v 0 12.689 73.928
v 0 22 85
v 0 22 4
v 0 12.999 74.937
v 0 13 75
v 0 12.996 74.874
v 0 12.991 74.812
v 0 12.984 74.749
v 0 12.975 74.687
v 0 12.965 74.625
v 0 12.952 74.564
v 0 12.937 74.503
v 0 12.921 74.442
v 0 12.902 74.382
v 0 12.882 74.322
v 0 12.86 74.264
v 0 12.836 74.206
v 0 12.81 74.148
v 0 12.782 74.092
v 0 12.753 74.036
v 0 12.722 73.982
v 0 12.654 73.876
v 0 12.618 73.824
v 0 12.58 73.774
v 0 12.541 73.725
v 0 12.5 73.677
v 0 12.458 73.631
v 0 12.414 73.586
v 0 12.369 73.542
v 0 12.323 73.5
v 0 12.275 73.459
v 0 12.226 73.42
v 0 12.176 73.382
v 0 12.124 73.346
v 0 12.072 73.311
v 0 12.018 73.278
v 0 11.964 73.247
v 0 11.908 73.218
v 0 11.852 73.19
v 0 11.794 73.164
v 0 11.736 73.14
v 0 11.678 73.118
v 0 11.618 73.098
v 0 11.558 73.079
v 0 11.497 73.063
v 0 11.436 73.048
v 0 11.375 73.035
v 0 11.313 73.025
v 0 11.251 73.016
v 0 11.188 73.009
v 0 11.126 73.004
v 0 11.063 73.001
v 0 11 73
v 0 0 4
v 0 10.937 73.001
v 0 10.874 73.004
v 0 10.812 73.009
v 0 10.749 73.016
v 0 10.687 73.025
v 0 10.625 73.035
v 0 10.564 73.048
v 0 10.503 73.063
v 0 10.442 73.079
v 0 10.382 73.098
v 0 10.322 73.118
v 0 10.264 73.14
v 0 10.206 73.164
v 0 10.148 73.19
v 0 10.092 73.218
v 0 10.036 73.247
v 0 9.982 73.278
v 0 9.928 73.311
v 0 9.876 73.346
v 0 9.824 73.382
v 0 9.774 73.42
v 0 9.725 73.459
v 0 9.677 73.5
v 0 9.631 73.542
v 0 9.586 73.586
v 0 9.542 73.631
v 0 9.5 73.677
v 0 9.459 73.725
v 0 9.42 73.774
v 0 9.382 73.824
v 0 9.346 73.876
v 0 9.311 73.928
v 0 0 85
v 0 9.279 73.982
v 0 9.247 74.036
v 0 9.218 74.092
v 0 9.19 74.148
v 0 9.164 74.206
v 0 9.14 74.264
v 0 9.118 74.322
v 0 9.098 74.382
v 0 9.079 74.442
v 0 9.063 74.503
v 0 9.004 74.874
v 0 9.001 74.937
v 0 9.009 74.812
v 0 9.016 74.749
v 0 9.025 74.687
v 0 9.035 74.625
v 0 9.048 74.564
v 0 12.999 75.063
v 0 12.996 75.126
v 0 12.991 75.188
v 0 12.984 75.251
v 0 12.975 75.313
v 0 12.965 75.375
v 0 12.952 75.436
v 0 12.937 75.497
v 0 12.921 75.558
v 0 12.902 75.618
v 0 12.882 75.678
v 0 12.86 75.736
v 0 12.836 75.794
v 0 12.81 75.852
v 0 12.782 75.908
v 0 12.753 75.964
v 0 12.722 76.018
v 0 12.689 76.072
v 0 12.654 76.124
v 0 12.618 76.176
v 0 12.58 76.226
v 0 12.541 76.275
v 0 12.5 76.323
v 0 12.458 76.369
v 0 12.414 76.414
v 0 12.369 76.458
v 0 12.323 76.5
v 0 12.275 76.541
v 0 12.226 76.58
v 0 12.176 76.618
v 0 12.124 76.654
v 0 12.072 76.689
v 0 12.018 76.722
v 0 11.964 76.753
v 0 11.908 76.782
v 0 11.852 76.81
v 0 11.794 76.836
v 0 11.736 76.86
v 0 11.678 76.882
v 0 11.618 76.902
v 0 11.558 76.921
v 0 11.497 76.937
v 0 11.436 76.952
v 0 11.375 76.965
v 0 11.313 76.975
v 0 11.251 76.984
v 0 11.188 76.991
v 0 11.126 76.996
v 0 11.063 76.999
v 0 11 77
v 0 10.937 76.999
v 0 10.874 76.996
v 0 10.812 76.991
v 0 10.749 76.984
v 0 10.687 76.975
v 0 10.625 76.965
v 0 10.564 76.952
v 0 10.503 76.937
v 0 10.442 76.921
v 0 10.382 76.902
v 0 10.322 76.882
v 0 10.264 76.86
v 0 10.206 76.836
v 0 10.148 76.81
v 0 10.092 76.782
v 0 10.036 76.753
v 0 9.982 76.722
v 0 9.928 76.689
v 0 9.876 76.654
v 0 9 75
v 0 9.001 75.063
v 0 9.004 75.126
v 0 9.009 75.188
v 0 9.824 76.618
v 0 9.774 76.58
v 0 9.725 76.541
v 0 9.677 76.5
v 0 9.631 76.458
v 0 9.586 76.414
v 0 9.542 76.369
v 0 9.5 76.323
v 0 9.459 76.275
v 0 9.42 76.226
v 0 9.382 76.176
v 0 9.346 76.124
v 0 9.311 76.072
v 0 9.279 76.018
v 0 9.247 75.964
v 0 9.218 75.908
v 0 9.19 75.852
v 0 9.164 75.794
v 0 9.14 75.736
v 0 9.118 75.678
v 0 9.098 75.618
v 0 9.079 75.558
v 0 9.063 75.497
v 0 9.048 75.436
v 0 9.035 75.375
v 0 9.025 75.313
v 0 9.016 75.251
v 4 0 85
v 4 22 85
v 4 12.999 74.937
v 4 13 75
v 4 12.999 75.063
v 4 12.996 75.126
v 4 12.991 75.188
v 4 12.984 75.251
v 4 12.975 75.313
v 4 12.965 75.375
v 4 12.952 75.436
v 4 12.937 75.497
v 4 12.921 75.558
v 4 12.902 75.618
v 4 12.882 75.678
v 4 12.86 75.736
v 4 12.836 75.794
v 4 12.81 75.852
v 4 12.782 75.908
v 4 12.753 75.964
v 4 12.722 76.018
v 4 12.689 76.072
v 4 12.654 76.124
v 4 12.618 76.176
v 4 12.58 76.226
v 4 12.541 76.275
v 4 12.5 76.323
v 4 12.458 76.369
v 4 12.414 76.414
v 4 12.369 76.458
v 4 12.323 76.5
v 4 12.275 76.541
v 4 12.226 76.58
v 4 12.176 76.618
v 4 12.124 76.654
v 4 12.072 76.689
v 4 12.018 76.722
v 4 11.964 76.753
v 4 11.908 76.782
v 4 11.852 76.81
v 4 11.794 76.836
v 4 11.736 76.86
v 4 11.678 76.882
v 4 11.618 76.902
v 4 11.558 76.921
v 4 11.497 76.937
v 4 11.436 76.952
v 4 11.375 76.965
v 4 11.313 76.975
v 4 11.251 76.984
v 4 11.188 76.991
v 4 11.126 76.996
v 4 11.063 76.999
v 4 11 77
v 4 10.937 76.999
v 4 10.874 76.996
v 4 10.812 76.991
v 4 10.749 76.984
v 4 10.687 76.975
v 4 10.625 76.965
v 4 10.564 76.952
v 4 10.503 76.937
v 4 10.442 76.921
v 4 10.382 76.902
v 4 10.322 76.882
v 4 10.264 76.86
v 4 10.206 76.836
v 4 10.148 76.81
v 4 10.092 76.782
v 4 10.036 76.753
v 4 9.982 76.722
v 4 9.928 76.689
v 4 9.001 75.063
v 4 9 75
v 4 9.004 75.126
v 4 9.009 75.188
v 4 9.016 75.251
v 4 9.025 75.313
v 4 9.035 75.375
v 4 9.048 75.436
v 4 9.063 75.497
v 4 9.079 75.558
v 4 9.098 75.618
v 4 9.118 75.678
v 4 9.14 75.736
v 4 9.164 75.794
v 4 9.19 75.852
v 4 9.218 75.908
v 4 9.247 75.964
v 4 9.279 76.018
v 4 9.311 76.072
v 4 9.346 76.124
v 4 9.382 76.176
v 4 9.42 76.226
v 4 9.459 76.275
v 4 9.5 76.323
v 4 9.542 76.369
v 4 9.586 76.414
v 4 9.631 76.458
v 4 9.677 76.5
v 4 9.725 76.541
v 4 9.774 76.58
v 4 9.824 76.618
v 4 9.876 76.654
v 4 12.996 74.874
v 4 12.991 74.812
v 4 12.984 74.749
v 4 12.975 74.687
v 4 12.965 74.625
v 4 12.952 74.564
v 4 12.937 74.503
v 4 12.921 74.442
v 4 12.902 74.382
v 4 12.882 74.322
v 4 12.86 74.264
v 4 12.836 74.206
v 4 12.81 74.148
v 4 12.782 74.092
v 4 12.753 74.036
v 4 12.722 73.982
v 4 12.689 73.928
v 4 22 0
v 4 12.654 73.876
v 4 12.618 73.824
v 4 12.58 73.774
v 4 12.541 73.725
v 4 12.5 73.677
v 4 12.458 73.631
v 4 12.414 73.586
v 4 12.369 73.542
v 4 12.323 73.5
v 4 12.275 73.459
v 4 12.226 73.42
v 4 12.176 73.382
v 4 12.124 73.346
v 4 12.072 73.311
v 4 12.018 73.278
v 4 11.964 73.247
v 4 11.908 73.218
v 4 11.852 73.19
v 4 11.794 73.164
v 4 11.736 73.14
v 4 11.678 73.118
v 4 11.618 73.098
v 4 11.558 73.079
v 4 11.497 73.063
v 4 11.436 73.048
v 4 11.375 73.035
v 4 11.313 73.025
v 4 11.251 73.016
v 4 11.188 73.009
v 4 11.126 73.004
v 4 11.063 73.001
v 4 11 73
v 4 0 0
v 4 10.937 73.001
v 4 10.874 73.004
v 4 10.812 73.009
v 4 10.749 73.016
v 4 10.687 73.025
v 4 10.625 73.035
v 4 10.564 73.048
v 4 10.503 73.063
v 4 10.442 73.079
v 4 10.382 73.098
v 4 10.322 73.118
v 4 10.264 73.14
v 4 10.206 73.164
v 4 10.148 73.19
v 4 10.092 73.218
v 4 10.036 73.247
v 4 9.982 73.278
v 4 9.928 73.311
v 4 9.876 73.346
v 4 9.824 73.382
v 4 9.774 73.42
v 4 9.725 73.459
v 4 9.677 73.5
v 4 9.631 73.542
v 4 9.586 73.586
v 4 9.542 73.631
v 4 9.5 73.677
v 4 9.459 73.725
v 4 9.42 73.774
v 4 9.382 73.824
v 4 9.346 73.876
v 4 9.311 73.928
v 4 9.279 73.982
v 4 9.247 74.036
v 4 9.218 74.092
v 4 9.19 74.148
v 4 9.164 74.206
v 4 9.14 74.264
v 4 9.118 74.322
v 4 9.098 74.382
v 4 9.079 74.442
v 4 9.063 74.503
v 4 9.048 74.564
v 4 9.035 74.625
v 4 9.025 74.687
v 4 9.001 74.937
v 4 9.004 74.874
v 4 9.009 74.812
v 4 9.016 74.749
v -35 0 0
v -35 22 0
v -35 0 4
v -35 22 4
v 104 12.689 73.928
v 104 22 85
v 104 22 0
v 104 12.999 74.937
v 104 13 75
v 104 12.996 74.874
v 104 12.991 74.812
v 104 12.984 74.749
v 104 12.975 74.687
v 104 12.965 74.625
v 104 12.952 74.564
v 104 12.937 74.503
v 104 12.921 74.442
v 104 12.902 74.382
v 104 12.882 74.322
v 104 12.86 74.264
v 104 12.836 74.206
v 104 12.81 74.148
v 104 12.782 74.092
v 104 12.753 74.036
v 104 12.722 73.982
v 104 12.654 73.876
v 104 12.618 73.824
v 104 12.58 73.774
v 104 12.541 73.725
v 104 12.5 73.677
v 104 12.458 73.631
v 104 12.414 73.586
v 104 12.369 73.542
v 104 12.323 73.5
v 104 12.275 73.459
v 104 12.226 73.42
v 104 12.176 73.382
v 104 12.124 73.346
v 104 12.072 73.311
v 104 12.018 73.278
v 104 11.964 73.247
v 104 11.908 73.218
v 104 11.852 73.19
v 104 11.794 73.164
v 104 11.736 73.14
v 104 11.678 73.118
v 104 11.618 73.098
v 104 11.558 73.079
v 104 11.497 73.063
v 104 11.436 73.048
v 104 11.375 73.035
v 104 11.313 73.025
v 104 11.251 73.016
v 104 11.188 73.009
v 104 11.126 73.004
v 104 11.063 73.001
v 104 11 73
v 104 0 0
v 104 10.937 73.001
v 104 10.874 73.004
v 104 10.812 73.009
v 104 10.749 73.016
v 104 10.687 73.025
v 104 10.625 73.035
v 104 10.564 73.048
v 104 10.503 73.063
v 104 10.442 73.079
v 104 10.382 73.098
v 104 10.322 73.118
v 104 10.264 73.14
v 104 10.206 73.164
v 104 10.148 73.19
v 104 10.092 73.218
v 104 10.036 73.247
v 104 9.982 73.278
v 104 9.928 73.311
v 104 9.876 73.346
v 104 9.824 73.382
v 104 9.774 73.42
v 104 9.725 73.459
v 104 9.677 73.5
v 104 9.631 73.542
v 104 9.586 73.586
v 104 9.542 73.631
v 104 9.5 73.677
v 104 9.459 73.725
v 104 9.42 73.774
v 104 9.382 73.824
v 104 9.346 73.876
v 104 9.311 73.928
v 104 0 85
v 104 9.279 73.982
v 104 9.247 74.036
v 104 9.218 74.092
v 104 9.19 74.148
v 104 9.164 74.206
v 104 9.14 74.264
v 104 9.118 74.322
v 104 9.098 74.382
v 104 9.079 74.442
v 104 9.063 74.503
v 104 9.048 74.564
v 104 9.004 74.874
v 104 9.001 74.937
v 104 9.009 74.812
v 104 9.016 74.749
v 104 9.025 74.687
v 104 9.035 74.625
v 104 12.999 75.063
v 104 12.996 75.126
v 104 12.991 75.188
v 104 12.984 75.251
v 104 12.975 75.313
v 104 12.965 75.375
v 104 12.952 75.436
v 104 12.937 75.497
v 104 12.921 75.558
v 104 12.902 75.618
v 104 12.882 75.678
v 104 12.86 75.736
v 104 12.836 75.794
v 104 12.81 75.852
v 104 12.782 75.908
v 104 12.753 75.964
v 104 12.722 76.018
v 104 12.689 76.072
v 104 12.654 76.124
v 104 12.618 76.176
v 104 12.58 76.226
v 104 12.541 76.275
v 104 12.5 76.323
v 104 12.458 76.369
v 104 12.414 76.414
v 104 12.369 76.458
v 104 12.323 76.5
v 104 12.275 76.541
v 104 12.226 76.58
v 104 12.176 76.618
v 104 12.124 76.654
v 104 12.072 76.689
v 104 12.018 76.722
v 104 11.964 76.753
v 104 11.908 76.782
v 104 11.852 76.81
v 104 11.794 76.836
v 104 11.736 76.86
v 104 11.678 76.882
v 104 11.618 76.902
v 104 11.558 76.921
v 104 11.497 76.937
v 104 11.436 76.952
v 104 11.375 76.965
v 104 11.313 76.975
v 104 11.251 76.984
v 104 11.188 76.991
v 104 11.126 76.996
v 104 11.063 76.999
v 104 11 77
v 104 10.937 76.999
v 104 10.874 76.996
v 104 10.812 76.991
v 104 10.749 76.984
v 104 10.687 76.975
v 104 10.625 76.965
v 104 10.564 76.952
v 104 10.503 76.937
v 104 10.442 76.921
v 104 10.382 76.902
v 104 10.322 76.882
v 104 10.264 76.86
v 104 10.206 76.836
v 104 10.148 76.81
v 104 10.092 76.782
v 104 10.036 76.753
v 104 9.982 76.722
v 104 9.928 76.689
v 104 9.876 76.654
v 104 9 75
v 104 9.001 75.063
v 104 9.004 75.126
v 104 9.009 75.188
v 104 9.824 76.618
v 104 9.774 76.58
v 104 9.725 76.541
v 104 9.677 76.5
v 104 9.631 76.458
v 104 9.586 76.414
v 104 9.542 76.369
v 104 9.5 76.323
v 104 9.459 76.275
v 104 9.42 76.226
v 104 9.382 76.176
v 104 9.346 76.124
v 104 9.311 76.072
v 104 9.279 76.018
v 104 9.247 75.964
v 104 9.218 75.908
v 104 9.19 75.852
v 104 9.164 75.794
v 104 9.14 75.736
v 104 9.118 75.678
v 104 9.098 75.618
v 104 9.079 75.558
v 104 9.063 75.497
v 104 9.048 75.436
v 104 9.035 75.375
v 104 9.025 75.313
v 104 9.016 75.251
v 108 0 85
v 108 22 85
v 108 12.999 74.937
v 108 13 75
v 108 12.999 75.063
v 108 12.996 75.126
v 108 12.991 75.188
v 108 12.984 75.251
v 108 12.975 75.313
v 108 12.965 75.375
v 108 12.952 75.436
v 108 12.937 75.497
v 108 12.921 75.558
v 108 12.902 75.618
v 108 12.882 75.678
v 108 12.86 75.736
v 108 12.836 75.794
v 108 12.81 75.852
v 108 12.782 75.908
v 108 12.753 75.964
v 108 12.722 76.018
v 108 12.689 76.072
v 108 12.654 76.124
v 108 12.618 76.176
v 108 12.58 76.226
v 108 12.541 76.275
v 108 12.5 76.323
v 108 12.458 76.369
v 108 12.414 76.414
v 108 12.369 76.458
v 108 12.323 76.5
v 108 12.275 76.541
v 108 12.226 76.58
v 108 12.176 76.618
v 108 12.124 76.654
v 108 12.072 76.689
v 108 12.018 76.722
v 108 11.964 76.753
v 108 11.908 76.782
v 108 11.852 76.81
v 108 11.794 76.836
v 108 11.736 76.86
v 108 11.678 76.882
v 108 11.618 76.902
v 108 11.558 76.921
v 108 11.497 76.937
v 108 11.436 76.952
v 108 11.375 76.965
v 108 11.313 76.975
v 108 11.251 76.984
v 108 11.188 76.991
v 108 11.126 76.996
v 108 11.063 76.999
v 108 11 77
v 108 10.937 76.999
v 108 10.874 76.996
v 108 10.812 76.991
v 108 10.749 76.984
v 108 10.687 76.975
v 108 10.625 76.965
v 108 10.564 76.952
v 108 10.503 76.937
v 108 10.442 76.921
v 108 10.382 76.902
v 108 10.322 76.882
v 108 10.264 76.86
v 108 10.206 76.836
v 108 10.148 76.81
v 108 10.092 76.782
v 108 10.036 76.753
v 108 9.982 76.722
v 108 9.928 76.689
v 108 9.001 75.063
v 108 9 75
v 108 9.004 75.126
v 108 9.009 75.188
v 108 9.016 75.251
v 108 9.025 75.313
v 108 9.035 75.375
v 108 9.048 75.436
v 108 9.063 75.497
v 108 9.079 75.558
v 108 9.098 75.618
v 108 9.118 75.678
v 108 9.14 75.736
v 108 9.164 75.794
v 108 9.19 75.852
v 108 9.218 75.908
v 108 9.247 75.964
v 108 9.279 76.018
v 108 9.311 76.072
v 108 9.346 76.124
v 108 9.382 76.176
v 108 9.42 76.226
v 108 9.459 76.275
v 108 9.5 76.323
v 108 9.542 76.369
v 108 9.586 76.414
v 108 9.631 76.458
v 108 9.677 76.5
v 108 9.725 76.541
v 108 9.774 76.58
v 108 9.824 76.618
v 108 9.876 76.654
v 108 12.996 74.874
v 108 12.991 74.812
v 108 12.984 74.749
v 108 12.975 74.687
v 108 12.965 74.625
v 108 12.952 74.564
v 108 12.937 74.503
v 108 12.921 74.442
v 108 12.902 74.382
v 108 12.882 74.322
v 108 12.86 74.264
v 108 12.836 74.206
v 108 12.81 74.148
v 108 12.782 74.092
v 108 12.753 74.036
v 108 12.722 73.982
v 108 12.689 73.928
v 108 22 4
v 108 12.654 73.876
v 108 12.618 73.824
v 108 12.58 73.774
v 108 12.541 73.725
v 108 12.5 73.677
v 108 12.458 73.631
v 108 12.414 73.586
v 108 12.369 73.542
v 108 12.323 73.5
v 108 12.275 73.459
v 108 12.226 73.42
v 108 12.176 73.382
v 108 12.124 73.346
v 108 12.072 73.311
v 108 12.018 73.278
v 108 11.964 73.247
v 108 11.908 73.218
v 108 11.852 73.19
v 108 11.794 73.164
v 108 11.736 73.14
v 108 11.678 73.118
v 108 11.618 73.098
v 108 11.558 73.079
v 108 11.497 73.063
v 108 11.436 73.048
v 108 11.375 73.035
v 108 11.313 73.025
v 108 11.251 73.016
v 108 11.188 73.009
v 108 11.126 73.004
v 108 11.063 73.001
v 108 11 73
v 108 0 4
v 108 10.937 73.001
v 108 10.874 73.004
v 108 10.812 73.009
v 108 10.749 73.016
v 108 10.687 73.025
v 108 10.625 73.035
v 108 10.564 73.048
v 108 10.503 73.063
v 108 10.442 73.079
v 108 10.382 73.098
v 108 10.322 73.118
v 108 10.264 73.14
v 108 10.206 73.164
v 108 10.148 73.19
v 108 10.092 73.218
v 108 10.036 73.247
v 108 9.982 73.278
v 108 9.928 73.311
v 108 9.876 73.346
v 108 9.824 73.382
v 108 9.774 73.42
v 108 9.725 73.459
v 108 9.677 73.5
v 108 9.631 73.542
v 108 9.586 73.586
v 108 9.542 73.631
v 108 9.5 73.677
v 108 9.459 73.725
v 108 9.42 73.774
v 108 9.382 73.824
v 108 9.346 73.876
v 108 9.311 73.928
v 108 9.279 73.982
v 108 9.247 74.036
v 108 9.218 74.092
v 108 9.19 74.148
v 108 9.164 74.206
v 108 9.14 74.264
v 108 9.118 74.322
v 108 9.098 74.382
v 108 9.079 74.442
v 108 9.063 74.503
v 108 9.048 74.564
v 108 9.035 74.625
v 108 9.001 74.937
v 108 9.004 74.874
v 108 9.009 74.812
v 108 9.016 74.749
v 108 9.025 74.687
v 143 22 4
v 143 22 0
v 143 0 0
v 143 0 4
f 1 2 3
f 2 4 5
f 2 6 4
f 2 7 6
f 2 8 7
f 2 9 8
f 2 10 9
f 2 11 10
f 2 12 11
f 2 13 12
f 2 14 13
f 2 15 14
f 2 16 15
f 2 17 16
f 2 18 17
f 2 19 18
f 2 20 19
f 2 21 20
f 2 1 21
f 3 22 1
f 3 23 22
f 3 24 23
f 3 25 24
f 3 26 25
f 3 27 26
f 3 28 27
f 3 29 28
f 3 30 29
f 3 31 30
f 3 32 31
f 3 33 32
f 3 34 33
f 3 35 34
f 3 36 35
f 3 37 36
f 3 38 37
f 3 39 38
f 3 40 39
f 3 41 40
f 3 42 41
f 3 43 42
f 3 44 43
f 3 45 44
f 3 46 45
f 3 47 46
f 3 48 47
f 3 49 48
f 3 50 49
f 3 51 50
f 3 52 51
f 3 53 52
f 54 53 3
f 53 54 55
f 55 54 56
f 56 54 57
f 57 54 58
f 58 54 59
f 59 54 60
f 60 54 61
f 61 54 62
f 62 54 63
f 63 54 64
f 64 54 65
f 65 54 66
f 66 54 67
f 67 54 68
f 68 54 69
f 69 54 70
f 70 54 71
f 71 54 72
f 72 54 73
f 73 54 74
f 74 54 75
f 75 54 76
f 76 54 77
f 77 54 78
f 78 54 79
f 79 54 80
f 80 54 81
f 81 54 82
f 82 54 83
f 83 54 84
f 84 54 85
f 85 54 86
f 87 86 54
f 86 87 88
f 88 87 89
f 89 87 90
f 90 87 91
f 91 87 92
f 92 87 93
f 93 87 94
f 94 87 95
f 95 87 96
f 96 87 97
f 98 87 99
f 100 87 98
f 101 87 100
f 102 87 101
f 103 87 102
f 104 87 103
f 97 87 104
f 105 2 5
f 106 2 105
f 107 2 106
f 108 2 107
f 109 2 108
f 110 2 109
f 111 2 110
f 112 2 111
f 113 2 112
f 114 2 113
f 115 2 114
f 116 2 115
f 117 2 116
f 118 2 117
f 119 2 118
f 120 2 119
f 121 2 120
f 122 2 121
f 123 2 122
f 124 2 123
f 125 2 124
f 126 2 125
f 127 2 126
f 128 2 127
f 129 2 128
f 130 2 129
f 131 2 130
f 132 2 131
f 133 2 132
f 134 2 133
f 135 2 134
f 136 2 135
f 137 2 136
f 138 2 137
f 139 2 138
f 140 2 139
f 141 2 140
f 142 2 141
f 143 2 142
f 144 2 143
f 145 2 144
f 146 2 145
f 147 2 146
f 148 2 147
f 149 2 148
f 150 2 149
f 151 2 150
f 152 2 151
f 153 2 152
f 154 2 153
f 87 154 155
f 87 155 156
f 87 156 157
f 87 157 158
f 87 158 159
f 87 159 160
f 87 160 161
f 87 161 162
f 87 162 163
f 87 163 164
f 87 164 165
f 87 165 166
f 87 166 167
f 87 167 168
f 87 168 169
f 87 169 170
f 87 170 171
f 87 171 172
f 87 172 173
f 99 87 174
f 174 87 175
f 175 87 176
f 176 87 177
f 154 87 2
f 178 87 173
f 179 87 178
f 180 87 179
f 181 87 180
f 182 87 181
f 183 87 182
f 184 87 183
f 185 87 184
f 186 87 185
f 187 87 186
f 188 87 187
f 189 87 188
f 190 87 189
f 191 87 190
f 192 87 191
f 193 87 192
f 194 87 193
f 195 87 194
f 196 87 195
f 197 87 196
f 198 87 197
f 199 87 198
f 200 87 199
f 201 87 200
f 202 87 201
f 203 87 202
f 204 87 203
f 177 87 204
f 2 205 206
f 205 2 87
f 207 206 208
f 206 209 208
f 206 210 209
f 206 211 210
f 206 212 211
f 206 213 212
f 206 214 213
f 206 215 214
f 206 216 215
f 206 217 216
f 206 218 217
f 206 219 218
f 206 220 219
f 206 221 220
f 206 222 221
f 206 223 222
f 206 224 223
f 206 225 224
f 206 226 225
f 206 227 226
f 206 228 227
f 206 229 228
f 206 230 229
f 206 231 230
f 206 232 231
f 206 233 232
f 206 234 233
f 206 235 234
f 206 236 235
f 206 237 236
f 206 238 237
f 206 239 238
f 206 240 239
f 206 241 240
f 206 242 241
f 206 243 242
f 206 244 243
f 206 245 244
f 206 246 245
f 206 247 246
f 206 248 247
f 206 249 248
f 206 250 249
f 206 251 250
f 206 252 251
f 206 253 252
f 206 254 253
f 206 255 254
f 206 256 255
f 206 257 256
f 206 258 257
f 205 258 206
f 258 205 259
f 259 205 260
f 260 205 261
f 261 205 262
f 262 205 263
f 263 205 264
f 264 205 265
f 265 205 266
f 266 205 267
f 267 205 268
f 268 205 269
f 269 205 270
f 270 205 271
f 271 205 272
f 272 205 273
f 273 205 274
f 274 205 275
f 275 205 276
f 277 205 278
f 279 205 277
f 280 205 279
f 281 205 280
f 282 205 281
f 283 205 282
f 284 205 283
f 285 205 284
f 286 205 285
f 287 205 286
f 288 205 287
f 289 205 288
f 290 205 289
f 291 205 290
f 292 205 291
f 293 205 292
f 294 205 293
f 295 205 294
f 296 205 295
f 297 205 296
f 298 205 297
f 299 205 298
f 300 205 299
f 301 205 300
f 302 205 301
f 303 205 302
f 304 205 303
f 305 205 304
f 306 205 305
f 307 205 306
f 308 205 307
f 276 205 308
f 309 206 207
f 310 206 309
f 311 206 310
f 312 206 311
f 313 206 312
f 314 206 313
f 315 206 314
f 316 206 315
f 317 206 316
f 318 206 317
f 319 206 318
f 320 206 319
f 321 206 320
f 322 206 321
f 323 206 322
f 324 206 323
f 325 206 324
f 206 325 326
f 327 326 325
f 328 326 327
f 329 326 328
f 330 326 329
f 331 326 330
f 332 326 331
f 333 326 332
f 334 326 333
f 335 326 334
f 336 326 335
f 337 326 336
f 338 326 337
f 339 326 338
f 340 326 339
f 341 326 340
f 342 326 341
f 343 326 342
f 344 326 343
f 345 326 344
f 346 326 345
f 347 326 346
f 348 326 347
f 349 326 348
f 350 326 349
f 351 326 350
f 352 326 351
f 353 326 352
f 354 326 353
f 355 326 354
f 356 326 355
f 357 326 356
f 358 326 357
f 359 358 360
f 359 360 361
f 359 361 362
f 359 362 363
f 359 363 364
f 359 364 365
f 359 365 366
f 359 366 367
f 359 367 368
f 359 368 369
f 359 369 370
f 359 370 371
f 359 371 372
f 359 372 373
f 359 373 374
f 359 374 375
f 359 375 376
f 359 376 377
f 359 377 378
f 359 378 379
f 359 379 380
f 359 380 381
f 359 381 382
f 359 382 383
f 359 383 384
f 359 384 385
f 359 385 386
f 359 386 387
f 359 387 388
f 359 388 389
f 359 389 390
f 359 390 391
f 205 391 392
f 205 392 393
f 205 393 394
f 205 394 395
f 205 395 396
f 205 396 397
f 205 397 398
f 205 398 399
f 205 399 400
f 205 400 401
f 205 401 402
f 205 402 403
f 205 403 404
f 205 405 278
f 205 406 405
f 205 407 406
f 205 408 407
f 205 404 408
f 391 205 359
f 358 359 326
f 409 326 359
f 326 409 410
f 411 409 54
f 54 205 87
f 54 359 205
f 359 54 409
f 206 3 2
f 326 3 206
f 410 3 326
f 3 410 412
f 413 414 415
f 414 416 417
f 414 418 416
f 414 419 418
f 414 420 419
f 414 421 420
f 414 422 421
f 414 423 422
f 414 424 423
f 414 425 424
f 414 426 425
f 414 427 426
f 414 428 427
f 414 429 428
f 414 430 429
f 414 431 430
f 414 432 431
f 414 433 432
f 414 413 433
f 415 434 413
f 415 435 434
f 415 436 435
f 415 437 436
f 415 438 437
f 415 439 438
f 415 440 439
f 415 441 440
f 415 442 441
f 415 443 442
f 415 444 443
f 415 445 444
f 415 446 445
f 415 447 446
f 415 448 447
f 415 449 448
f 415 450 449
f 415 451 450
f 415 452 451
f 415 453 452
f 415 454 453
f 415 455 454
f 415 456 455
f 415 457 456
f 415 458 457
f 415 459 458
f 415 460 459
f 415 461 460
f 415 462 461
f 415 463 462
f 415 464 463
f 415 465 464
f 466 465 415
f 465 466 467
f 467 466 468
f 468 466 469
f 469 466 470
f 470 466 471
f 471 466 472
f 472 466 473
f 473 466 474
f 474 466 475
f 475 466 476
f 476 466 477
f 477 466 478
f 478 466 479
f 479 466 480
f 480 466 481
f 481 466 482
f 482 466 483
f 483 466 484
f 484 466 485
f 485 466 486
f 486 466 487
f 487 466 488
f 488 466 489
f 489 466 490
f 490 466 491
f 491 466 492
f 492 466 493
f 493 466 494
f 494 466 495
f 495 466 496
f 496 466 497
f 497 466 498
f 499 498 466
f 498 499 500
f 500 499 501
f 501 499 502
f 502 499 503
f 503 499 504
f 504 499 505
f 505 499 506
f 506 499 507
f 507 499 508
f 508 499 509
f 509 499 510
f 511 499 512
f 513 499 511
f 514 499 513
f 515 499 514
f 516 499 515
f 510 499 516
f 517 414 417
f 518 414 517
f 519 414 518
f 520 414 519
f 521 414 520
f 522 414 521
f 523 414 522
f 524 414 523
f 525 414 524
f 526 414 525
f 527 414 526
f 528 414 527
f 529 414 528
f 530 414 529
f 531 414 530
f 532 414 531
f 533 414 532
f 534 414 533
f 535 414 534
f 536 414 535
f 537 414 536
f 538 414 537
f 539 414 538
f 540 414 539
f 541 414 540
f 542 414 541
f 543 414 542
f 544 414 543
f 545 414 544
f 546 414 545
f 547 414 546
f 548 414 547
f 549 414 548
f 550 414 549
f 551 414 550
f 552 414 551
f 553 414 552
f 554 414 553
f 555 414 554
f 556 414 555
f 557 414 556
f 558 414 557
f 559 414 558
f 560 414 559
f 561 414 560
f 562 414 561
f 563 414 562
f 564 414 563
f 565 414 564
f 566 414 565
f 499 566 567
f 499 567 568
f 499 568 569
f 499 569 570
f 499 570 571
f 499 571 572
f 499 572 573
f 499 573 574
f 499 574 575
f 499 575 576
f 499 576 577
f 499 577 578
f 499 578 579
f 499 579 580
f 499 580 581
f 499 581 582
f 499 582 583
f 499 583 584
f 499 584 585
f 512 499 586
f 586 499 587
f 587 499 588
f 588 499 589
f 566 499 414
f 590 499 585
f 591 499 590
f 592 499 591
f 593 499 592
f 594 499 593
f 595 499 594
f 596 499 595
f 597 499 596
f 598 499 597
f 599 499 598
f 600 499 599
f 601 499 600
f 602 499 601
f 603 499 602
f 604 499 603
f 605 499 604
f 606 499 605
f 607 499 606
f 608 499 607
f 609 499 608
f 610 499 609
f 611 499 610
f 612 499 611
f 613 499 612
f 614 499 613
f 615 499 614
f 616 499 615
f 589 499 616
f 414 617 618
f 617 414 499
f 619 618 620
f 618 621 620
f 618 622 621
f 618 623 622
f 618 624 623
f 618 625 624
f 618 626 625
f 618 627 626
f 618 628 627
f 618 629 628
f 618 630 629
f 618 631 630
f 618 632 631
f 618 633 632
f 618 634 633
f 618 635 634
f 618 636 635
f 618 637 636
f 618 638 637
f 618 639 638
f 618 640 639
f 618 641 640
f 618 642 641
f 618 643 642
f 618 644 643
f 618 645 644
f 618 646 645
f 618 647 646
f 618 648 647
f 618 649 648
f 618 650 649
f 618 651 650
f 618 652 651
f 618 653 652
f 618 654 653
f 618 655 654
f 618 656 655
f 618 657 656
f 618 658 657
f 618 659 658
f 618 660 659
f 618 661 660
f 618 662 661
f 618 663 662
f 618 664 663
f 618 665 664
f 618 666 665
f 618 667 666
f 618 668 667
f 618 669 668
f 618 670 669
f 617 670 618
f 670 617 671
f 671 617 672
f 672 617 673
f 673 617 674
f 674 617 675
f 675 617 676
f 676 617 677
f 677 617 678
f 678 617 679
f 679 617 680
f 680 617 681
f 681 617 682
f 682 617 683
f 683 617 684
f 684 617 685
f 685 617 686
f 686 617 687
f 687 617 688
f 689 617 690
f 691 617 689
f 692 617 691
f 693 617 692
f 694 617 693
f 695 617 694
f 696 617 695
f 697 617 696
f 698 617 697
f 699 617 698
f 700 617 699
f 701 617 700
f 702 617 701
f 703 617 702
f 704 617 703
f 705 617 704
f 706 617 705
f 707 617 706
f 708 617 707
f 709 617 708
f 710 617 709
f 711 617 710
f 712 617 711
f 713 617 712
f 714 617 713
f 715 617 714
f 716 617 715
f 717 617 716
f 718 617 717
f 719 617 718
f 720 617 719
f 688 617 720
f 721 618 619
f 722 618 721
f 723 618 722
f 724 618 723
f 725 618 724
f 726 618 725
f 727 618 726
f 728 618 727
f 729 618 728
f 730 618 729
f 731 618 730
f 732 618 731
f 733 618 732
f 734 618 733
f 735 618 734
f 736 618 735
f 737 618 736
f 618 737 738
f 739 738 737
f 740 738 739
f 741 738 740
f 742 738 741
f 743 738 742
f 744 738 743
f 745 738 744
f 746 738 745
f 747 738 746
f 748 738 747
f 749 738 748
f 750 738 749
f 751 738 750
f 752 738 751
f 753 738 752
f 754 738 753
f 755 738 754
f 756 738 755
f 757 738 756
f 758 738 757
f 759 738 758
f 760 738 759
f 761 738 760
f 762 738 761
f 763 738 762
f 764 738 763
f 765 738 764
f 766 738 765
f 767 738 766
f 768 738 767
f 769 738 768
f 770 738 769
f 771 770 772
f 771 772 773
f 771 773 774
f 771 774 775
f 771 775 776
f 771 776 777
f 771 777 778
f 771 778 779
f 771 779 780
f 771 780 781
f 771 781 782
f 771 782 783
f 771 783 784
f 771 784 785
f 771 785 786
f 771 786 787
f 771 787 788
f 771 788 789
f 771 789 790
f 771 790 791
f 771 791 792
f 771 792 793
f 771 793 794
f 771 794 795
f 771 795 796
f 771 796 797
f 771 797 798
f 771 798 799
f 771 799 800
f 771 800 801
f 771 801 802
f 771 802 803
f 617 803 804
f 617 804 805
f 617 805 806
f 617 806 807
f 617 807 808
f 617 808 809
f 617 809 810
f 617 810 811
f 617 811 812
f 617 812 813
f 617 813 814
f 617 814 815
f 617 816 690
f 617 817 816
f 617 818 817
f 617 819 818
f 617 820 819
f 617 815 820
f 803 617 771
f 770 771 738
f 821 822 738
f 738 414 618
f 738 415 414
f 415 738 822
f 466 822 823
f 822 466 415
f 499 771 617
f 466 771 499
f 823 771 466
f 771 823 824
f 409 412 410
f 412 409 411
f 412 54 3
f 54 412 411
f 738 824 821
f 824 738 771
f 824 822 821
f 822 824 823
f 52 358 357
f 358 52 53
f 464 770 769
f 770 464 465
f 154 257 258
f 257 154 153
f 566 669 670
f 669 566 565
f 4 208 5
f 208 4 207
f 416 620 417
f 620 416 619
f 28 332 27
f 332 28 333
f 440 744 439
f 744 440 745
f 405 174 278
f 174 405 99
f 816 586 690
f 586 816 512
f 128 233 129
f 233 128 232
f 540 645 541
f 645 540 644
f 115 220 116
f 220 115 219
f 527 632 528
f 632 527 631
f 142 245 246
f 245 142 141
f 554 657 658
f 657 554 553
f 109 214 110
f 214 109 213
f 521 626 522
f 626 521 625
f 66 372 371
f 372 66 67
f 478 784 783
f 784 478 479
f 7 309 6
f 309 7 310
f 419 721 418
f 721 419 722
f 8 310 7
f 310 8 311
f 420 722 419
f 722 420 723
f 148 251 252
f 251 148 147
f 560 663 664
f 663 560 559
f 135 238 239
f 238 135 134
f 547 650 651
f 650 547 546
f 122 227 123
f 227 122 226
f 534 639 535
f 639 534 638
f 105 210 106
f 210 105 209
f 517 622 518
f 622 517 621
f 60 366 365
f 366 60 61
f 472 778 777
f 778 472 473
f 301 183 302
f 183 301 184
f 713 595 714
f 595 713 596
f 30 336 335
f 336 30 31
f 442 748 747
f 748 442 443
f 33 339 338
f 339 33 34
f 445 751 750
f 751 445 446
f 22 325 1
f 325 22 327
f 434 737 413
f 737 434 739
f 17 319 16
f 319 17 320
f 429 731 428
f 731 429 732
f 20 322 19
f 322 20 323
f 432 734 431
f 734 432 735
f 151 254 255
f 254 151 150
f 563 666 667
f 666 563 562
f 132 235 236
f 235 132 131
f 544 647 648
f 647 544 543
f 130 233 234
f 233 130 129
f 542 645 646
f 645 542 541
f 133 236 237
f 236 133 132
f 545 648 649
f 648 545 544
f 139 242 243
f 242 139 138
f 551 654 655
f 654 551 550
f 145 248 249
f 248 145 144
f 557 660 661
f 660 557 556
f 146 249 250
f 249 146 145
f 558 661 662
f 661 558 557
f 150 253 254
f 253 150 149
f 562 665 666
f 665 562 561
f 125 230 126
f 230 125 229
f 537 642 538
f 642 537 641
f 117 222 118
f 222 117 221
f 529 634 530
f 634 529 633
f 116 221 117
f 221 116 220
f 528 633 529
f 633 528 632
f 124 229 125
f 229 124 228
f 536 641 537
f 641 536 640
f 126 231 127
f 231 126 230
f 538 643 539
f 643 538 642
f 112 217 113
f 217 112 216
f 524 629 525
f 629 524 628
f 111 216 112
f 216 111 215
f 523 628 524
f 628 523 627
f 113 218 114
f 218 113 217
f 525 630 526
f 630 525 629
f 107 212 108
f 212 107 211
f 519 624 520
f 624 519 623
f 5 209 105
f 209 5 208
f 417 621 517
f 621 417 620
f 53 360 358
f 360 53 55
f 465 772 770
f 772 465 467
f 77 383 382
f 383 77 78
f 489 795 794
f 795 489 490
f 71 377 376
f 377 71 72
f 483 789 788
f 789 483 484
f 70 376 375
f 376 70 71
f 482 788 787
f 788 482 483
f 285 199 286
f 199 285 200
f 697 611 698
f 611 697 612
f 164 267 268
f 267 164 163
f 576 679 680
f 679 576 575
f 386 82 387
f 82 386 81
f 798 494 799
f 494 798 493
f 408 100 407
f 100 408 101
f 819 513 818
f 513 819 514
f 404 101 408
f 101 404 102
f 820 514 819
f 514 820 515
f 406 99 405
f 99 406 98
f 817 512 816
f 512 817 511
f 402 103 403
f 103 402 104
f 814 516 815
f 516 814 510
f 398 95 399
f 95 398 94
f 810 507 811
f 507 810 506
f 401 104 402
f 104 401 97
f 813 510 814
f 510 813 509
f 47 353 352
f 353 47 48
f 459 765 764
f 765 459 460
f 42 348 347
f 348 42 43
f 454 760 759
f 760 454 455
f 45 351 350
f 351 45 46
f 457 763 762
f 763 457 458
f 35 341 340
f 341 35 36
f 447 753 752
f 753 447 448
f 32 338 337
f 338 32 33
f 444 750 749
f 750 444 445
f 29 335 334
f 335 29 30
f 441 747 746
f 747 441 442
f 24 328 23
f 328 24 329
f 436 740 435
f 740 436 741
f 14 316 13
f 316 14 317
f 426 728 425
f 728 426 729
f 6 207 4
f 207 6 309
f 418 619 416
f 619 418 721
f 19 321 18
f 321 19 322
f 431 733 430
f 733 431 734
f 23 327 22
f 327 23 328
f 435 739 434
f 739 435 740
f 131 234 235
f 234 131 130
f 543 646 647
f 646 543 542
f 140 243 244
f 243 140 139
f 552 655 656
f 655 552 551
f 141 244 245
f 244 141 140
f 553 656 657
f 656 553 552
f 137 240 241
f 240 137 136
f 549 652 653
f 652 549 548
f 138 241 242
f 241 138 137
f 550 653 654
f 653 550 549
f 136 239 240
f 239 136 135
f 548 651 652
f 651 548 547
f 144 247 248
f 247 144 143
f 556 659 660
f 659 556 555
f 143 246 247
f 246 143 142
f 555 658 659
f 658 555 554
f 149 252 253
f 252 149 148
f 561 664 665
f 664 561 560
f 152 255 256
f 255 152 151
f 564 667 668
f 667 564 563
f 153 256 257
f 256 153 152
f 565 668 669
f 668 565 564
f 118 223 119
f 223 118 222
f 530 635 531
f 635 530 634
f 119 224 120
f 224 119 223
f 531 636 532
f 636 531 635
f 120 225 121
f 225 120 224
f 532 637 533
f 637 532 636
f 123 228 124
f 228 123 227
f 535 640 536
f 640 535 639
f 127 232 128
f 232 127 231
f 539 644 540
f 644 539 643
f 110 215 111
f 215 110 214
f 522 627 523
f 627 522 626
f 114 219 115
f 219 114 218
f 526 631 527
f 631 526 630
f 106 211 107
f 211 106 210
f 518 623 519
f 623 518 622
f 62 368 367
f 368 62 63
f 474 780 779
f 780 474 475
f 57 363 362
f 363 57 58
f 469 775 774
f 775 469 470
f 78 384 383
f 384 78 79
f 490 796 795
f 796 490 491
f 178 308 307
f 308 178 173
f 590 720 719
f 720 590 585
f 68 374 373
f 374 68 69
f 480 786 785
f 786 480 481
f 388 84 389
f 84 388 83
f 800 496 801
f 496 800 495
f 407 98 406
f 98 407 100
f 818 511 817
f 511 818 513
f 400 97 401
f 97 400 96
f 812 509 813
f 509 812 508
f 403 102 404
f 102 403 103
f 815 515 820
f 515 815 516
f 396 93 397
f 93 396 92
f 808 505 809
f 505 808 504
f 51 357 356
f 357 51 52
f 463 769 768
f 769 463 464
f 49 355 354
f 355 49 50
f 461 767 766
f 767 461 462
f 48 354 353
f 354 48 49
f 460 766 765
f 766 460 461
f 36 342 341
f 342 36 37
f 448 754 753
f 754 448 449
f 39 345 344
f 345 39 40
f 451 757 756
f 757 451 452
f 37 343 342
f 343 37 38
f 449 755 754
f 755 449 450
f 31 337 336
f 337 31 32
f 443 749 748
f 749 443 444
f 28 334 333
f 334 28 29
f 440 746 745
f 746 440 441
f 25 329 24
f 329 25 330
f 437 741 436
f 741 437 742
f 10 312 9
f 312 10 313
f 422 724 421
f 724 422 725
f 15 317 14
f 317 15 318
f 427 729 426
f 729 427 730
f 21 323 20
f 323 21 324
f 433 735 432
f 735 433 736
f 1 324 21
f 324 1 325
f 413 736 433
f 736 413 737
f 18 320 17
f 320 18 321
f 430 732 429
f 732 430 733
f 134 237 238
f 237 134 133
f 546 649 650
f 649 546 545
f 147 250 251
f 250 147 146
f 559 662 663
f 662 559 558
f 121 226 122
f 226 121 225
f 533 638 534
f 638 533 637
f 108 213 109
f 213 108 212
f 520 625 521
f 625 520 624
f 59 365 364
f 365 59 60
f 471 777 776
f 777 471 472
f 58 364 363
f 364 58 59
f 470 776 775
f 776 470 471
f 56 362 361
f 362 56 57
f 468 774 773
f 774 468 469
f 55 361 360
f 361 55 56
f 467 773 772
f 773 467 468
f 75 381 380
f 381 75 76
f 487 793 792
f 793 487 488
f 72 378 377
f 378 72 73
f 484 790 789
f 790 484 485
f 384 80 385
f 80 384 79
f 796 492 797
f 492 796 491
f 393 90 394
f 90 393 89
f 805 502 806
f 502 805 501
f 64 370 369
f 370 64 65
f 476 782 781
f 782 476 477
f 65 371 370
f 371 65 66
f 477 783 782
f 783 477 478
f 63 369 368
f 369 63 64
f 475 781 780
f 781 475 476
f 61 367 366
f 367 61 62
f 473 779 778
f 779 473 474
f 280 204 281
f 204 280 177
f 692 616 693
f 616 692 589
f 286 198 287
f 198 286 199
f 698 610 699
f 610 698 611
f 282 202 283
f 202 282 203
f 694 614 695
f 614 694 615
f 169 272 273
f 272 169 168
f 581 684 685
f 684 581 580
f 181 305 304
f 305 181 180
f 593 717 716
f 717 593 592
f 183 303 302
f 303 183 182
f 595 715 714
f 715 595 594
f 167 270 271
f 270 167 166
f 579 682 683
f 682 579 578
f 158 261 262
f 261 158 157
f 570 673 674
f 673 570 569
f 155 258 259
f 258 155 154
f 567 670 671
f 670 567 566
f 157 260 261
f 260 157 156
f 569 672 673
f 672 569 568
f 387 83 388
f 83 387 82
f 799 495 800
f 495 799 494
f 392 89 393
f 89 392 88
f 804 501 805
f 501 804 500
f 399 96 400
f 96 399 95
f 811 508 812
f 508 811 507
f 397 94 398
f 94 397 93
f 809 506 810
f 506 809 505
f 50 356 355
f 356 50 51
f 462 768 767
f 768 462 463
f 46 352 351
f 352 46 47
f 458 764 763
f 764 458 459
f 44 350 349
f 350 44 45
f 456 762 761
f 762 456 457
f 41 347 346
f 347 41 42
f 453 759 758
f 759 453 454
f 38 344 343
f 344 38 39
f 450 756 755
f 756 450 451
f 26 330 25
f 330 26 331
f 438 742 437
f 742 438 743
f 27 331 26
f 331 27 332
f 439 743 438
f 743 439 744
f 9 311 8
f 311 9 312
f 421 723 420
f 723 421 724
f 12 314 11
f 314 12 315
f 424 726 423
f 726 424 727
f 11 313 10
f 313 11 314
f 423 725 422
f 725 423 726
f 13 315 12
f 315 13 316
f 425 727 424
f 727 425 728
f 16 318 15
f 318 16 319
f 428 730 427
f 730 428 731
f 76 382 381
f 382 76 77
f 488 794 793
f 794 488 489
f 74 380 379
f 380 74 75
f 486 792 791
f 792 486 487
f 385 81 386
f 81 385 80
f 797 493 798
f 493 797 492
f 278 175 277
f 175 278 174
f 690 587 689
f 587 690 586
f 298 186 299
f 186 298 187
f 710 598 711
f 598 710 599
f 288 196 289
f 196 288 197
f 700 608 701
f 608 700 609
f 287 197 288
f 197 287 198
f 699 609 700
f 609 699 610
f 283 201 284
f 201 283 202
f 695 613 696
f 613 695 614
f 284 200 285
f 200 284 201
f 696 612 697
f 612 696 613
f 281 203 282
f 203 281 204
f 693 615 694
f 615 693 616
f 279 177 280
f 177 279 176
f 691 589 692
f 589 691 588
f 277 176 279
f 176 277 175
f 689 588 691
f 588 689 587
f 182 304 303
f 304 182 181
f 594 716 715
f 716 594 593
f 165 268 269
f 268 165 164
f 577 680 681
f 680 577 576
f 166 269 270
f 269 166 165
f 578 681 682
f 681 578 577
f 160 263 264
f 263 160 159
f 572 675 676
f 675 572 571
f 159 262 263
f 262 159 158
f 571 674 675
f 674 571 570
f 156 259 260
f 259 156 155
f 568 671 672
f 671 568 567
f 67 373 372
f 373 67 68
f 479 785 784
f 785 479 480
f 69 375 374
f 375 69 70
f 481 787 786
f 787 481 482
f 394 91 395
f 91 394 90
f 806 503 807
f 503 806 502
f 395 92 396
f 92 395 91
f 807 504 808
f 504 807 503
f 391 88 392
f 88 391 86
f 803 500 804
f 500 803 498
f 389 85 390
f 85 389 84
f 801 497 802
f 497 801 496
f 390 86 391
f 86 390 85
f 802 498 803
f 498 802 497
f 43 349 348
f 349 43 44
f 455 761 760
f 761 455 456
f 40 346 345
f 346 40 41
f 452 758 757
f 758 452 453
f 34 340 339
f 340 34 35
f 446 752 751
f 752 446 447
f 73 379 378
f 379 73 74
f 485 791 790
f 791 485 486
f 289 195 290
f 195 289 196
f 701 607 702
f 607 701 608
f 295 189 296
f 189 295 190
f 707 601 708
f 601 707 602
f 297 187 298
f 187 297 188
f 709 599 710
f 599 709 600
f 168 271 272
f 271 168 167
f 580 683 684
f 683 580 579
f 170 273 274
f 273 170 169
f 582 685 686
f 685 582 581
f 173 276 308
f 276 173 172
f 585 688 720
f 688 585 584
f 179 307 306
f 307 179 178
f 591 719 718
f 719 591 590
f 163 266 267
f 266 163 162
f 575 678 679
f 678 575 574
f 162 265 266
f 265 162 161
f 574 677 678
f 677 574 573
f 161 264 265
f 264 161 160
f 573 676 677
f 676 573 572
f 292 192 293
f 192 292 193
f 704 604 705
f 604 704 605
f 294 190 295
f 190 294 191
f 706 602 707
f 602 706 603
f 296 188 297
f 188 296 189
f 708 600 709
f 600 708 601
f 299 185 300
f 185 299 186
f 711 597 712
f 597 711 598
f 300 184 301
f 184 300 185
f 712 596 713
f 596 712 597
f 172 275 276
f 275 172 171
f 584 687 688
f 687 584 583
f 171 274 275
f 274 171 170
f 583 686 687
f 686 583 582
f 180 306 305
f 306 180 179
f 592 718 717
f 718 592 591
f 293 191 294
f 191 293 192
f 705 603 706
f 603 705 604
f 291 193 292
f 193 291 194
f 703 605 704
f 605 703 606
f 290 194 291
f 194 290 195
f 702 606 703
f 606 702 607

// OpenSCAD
h = 85;
b = 100;
w = 22;
d = 4;
r = 2;
bh = 75;
s = b + 70;

difference(){
    union(){
        cube([d, w, h]);
        translate([b+d, 0, 0]){
            cube([d, w, h]);
        }
        translate([((b-s)/2), 0 ,0]){
            cube([35, w, d]);
        }
        translate([b+(2*d), 0 ,0]){
                cube([35, w, d]);
            }
    }
    translate([-1, w/2, bh]){
            rotate([0, 90, 0]){
            cylinder(h=b+(2*d)+2, r1=r, r2=r, $fn=200);
        }
    }   
}
